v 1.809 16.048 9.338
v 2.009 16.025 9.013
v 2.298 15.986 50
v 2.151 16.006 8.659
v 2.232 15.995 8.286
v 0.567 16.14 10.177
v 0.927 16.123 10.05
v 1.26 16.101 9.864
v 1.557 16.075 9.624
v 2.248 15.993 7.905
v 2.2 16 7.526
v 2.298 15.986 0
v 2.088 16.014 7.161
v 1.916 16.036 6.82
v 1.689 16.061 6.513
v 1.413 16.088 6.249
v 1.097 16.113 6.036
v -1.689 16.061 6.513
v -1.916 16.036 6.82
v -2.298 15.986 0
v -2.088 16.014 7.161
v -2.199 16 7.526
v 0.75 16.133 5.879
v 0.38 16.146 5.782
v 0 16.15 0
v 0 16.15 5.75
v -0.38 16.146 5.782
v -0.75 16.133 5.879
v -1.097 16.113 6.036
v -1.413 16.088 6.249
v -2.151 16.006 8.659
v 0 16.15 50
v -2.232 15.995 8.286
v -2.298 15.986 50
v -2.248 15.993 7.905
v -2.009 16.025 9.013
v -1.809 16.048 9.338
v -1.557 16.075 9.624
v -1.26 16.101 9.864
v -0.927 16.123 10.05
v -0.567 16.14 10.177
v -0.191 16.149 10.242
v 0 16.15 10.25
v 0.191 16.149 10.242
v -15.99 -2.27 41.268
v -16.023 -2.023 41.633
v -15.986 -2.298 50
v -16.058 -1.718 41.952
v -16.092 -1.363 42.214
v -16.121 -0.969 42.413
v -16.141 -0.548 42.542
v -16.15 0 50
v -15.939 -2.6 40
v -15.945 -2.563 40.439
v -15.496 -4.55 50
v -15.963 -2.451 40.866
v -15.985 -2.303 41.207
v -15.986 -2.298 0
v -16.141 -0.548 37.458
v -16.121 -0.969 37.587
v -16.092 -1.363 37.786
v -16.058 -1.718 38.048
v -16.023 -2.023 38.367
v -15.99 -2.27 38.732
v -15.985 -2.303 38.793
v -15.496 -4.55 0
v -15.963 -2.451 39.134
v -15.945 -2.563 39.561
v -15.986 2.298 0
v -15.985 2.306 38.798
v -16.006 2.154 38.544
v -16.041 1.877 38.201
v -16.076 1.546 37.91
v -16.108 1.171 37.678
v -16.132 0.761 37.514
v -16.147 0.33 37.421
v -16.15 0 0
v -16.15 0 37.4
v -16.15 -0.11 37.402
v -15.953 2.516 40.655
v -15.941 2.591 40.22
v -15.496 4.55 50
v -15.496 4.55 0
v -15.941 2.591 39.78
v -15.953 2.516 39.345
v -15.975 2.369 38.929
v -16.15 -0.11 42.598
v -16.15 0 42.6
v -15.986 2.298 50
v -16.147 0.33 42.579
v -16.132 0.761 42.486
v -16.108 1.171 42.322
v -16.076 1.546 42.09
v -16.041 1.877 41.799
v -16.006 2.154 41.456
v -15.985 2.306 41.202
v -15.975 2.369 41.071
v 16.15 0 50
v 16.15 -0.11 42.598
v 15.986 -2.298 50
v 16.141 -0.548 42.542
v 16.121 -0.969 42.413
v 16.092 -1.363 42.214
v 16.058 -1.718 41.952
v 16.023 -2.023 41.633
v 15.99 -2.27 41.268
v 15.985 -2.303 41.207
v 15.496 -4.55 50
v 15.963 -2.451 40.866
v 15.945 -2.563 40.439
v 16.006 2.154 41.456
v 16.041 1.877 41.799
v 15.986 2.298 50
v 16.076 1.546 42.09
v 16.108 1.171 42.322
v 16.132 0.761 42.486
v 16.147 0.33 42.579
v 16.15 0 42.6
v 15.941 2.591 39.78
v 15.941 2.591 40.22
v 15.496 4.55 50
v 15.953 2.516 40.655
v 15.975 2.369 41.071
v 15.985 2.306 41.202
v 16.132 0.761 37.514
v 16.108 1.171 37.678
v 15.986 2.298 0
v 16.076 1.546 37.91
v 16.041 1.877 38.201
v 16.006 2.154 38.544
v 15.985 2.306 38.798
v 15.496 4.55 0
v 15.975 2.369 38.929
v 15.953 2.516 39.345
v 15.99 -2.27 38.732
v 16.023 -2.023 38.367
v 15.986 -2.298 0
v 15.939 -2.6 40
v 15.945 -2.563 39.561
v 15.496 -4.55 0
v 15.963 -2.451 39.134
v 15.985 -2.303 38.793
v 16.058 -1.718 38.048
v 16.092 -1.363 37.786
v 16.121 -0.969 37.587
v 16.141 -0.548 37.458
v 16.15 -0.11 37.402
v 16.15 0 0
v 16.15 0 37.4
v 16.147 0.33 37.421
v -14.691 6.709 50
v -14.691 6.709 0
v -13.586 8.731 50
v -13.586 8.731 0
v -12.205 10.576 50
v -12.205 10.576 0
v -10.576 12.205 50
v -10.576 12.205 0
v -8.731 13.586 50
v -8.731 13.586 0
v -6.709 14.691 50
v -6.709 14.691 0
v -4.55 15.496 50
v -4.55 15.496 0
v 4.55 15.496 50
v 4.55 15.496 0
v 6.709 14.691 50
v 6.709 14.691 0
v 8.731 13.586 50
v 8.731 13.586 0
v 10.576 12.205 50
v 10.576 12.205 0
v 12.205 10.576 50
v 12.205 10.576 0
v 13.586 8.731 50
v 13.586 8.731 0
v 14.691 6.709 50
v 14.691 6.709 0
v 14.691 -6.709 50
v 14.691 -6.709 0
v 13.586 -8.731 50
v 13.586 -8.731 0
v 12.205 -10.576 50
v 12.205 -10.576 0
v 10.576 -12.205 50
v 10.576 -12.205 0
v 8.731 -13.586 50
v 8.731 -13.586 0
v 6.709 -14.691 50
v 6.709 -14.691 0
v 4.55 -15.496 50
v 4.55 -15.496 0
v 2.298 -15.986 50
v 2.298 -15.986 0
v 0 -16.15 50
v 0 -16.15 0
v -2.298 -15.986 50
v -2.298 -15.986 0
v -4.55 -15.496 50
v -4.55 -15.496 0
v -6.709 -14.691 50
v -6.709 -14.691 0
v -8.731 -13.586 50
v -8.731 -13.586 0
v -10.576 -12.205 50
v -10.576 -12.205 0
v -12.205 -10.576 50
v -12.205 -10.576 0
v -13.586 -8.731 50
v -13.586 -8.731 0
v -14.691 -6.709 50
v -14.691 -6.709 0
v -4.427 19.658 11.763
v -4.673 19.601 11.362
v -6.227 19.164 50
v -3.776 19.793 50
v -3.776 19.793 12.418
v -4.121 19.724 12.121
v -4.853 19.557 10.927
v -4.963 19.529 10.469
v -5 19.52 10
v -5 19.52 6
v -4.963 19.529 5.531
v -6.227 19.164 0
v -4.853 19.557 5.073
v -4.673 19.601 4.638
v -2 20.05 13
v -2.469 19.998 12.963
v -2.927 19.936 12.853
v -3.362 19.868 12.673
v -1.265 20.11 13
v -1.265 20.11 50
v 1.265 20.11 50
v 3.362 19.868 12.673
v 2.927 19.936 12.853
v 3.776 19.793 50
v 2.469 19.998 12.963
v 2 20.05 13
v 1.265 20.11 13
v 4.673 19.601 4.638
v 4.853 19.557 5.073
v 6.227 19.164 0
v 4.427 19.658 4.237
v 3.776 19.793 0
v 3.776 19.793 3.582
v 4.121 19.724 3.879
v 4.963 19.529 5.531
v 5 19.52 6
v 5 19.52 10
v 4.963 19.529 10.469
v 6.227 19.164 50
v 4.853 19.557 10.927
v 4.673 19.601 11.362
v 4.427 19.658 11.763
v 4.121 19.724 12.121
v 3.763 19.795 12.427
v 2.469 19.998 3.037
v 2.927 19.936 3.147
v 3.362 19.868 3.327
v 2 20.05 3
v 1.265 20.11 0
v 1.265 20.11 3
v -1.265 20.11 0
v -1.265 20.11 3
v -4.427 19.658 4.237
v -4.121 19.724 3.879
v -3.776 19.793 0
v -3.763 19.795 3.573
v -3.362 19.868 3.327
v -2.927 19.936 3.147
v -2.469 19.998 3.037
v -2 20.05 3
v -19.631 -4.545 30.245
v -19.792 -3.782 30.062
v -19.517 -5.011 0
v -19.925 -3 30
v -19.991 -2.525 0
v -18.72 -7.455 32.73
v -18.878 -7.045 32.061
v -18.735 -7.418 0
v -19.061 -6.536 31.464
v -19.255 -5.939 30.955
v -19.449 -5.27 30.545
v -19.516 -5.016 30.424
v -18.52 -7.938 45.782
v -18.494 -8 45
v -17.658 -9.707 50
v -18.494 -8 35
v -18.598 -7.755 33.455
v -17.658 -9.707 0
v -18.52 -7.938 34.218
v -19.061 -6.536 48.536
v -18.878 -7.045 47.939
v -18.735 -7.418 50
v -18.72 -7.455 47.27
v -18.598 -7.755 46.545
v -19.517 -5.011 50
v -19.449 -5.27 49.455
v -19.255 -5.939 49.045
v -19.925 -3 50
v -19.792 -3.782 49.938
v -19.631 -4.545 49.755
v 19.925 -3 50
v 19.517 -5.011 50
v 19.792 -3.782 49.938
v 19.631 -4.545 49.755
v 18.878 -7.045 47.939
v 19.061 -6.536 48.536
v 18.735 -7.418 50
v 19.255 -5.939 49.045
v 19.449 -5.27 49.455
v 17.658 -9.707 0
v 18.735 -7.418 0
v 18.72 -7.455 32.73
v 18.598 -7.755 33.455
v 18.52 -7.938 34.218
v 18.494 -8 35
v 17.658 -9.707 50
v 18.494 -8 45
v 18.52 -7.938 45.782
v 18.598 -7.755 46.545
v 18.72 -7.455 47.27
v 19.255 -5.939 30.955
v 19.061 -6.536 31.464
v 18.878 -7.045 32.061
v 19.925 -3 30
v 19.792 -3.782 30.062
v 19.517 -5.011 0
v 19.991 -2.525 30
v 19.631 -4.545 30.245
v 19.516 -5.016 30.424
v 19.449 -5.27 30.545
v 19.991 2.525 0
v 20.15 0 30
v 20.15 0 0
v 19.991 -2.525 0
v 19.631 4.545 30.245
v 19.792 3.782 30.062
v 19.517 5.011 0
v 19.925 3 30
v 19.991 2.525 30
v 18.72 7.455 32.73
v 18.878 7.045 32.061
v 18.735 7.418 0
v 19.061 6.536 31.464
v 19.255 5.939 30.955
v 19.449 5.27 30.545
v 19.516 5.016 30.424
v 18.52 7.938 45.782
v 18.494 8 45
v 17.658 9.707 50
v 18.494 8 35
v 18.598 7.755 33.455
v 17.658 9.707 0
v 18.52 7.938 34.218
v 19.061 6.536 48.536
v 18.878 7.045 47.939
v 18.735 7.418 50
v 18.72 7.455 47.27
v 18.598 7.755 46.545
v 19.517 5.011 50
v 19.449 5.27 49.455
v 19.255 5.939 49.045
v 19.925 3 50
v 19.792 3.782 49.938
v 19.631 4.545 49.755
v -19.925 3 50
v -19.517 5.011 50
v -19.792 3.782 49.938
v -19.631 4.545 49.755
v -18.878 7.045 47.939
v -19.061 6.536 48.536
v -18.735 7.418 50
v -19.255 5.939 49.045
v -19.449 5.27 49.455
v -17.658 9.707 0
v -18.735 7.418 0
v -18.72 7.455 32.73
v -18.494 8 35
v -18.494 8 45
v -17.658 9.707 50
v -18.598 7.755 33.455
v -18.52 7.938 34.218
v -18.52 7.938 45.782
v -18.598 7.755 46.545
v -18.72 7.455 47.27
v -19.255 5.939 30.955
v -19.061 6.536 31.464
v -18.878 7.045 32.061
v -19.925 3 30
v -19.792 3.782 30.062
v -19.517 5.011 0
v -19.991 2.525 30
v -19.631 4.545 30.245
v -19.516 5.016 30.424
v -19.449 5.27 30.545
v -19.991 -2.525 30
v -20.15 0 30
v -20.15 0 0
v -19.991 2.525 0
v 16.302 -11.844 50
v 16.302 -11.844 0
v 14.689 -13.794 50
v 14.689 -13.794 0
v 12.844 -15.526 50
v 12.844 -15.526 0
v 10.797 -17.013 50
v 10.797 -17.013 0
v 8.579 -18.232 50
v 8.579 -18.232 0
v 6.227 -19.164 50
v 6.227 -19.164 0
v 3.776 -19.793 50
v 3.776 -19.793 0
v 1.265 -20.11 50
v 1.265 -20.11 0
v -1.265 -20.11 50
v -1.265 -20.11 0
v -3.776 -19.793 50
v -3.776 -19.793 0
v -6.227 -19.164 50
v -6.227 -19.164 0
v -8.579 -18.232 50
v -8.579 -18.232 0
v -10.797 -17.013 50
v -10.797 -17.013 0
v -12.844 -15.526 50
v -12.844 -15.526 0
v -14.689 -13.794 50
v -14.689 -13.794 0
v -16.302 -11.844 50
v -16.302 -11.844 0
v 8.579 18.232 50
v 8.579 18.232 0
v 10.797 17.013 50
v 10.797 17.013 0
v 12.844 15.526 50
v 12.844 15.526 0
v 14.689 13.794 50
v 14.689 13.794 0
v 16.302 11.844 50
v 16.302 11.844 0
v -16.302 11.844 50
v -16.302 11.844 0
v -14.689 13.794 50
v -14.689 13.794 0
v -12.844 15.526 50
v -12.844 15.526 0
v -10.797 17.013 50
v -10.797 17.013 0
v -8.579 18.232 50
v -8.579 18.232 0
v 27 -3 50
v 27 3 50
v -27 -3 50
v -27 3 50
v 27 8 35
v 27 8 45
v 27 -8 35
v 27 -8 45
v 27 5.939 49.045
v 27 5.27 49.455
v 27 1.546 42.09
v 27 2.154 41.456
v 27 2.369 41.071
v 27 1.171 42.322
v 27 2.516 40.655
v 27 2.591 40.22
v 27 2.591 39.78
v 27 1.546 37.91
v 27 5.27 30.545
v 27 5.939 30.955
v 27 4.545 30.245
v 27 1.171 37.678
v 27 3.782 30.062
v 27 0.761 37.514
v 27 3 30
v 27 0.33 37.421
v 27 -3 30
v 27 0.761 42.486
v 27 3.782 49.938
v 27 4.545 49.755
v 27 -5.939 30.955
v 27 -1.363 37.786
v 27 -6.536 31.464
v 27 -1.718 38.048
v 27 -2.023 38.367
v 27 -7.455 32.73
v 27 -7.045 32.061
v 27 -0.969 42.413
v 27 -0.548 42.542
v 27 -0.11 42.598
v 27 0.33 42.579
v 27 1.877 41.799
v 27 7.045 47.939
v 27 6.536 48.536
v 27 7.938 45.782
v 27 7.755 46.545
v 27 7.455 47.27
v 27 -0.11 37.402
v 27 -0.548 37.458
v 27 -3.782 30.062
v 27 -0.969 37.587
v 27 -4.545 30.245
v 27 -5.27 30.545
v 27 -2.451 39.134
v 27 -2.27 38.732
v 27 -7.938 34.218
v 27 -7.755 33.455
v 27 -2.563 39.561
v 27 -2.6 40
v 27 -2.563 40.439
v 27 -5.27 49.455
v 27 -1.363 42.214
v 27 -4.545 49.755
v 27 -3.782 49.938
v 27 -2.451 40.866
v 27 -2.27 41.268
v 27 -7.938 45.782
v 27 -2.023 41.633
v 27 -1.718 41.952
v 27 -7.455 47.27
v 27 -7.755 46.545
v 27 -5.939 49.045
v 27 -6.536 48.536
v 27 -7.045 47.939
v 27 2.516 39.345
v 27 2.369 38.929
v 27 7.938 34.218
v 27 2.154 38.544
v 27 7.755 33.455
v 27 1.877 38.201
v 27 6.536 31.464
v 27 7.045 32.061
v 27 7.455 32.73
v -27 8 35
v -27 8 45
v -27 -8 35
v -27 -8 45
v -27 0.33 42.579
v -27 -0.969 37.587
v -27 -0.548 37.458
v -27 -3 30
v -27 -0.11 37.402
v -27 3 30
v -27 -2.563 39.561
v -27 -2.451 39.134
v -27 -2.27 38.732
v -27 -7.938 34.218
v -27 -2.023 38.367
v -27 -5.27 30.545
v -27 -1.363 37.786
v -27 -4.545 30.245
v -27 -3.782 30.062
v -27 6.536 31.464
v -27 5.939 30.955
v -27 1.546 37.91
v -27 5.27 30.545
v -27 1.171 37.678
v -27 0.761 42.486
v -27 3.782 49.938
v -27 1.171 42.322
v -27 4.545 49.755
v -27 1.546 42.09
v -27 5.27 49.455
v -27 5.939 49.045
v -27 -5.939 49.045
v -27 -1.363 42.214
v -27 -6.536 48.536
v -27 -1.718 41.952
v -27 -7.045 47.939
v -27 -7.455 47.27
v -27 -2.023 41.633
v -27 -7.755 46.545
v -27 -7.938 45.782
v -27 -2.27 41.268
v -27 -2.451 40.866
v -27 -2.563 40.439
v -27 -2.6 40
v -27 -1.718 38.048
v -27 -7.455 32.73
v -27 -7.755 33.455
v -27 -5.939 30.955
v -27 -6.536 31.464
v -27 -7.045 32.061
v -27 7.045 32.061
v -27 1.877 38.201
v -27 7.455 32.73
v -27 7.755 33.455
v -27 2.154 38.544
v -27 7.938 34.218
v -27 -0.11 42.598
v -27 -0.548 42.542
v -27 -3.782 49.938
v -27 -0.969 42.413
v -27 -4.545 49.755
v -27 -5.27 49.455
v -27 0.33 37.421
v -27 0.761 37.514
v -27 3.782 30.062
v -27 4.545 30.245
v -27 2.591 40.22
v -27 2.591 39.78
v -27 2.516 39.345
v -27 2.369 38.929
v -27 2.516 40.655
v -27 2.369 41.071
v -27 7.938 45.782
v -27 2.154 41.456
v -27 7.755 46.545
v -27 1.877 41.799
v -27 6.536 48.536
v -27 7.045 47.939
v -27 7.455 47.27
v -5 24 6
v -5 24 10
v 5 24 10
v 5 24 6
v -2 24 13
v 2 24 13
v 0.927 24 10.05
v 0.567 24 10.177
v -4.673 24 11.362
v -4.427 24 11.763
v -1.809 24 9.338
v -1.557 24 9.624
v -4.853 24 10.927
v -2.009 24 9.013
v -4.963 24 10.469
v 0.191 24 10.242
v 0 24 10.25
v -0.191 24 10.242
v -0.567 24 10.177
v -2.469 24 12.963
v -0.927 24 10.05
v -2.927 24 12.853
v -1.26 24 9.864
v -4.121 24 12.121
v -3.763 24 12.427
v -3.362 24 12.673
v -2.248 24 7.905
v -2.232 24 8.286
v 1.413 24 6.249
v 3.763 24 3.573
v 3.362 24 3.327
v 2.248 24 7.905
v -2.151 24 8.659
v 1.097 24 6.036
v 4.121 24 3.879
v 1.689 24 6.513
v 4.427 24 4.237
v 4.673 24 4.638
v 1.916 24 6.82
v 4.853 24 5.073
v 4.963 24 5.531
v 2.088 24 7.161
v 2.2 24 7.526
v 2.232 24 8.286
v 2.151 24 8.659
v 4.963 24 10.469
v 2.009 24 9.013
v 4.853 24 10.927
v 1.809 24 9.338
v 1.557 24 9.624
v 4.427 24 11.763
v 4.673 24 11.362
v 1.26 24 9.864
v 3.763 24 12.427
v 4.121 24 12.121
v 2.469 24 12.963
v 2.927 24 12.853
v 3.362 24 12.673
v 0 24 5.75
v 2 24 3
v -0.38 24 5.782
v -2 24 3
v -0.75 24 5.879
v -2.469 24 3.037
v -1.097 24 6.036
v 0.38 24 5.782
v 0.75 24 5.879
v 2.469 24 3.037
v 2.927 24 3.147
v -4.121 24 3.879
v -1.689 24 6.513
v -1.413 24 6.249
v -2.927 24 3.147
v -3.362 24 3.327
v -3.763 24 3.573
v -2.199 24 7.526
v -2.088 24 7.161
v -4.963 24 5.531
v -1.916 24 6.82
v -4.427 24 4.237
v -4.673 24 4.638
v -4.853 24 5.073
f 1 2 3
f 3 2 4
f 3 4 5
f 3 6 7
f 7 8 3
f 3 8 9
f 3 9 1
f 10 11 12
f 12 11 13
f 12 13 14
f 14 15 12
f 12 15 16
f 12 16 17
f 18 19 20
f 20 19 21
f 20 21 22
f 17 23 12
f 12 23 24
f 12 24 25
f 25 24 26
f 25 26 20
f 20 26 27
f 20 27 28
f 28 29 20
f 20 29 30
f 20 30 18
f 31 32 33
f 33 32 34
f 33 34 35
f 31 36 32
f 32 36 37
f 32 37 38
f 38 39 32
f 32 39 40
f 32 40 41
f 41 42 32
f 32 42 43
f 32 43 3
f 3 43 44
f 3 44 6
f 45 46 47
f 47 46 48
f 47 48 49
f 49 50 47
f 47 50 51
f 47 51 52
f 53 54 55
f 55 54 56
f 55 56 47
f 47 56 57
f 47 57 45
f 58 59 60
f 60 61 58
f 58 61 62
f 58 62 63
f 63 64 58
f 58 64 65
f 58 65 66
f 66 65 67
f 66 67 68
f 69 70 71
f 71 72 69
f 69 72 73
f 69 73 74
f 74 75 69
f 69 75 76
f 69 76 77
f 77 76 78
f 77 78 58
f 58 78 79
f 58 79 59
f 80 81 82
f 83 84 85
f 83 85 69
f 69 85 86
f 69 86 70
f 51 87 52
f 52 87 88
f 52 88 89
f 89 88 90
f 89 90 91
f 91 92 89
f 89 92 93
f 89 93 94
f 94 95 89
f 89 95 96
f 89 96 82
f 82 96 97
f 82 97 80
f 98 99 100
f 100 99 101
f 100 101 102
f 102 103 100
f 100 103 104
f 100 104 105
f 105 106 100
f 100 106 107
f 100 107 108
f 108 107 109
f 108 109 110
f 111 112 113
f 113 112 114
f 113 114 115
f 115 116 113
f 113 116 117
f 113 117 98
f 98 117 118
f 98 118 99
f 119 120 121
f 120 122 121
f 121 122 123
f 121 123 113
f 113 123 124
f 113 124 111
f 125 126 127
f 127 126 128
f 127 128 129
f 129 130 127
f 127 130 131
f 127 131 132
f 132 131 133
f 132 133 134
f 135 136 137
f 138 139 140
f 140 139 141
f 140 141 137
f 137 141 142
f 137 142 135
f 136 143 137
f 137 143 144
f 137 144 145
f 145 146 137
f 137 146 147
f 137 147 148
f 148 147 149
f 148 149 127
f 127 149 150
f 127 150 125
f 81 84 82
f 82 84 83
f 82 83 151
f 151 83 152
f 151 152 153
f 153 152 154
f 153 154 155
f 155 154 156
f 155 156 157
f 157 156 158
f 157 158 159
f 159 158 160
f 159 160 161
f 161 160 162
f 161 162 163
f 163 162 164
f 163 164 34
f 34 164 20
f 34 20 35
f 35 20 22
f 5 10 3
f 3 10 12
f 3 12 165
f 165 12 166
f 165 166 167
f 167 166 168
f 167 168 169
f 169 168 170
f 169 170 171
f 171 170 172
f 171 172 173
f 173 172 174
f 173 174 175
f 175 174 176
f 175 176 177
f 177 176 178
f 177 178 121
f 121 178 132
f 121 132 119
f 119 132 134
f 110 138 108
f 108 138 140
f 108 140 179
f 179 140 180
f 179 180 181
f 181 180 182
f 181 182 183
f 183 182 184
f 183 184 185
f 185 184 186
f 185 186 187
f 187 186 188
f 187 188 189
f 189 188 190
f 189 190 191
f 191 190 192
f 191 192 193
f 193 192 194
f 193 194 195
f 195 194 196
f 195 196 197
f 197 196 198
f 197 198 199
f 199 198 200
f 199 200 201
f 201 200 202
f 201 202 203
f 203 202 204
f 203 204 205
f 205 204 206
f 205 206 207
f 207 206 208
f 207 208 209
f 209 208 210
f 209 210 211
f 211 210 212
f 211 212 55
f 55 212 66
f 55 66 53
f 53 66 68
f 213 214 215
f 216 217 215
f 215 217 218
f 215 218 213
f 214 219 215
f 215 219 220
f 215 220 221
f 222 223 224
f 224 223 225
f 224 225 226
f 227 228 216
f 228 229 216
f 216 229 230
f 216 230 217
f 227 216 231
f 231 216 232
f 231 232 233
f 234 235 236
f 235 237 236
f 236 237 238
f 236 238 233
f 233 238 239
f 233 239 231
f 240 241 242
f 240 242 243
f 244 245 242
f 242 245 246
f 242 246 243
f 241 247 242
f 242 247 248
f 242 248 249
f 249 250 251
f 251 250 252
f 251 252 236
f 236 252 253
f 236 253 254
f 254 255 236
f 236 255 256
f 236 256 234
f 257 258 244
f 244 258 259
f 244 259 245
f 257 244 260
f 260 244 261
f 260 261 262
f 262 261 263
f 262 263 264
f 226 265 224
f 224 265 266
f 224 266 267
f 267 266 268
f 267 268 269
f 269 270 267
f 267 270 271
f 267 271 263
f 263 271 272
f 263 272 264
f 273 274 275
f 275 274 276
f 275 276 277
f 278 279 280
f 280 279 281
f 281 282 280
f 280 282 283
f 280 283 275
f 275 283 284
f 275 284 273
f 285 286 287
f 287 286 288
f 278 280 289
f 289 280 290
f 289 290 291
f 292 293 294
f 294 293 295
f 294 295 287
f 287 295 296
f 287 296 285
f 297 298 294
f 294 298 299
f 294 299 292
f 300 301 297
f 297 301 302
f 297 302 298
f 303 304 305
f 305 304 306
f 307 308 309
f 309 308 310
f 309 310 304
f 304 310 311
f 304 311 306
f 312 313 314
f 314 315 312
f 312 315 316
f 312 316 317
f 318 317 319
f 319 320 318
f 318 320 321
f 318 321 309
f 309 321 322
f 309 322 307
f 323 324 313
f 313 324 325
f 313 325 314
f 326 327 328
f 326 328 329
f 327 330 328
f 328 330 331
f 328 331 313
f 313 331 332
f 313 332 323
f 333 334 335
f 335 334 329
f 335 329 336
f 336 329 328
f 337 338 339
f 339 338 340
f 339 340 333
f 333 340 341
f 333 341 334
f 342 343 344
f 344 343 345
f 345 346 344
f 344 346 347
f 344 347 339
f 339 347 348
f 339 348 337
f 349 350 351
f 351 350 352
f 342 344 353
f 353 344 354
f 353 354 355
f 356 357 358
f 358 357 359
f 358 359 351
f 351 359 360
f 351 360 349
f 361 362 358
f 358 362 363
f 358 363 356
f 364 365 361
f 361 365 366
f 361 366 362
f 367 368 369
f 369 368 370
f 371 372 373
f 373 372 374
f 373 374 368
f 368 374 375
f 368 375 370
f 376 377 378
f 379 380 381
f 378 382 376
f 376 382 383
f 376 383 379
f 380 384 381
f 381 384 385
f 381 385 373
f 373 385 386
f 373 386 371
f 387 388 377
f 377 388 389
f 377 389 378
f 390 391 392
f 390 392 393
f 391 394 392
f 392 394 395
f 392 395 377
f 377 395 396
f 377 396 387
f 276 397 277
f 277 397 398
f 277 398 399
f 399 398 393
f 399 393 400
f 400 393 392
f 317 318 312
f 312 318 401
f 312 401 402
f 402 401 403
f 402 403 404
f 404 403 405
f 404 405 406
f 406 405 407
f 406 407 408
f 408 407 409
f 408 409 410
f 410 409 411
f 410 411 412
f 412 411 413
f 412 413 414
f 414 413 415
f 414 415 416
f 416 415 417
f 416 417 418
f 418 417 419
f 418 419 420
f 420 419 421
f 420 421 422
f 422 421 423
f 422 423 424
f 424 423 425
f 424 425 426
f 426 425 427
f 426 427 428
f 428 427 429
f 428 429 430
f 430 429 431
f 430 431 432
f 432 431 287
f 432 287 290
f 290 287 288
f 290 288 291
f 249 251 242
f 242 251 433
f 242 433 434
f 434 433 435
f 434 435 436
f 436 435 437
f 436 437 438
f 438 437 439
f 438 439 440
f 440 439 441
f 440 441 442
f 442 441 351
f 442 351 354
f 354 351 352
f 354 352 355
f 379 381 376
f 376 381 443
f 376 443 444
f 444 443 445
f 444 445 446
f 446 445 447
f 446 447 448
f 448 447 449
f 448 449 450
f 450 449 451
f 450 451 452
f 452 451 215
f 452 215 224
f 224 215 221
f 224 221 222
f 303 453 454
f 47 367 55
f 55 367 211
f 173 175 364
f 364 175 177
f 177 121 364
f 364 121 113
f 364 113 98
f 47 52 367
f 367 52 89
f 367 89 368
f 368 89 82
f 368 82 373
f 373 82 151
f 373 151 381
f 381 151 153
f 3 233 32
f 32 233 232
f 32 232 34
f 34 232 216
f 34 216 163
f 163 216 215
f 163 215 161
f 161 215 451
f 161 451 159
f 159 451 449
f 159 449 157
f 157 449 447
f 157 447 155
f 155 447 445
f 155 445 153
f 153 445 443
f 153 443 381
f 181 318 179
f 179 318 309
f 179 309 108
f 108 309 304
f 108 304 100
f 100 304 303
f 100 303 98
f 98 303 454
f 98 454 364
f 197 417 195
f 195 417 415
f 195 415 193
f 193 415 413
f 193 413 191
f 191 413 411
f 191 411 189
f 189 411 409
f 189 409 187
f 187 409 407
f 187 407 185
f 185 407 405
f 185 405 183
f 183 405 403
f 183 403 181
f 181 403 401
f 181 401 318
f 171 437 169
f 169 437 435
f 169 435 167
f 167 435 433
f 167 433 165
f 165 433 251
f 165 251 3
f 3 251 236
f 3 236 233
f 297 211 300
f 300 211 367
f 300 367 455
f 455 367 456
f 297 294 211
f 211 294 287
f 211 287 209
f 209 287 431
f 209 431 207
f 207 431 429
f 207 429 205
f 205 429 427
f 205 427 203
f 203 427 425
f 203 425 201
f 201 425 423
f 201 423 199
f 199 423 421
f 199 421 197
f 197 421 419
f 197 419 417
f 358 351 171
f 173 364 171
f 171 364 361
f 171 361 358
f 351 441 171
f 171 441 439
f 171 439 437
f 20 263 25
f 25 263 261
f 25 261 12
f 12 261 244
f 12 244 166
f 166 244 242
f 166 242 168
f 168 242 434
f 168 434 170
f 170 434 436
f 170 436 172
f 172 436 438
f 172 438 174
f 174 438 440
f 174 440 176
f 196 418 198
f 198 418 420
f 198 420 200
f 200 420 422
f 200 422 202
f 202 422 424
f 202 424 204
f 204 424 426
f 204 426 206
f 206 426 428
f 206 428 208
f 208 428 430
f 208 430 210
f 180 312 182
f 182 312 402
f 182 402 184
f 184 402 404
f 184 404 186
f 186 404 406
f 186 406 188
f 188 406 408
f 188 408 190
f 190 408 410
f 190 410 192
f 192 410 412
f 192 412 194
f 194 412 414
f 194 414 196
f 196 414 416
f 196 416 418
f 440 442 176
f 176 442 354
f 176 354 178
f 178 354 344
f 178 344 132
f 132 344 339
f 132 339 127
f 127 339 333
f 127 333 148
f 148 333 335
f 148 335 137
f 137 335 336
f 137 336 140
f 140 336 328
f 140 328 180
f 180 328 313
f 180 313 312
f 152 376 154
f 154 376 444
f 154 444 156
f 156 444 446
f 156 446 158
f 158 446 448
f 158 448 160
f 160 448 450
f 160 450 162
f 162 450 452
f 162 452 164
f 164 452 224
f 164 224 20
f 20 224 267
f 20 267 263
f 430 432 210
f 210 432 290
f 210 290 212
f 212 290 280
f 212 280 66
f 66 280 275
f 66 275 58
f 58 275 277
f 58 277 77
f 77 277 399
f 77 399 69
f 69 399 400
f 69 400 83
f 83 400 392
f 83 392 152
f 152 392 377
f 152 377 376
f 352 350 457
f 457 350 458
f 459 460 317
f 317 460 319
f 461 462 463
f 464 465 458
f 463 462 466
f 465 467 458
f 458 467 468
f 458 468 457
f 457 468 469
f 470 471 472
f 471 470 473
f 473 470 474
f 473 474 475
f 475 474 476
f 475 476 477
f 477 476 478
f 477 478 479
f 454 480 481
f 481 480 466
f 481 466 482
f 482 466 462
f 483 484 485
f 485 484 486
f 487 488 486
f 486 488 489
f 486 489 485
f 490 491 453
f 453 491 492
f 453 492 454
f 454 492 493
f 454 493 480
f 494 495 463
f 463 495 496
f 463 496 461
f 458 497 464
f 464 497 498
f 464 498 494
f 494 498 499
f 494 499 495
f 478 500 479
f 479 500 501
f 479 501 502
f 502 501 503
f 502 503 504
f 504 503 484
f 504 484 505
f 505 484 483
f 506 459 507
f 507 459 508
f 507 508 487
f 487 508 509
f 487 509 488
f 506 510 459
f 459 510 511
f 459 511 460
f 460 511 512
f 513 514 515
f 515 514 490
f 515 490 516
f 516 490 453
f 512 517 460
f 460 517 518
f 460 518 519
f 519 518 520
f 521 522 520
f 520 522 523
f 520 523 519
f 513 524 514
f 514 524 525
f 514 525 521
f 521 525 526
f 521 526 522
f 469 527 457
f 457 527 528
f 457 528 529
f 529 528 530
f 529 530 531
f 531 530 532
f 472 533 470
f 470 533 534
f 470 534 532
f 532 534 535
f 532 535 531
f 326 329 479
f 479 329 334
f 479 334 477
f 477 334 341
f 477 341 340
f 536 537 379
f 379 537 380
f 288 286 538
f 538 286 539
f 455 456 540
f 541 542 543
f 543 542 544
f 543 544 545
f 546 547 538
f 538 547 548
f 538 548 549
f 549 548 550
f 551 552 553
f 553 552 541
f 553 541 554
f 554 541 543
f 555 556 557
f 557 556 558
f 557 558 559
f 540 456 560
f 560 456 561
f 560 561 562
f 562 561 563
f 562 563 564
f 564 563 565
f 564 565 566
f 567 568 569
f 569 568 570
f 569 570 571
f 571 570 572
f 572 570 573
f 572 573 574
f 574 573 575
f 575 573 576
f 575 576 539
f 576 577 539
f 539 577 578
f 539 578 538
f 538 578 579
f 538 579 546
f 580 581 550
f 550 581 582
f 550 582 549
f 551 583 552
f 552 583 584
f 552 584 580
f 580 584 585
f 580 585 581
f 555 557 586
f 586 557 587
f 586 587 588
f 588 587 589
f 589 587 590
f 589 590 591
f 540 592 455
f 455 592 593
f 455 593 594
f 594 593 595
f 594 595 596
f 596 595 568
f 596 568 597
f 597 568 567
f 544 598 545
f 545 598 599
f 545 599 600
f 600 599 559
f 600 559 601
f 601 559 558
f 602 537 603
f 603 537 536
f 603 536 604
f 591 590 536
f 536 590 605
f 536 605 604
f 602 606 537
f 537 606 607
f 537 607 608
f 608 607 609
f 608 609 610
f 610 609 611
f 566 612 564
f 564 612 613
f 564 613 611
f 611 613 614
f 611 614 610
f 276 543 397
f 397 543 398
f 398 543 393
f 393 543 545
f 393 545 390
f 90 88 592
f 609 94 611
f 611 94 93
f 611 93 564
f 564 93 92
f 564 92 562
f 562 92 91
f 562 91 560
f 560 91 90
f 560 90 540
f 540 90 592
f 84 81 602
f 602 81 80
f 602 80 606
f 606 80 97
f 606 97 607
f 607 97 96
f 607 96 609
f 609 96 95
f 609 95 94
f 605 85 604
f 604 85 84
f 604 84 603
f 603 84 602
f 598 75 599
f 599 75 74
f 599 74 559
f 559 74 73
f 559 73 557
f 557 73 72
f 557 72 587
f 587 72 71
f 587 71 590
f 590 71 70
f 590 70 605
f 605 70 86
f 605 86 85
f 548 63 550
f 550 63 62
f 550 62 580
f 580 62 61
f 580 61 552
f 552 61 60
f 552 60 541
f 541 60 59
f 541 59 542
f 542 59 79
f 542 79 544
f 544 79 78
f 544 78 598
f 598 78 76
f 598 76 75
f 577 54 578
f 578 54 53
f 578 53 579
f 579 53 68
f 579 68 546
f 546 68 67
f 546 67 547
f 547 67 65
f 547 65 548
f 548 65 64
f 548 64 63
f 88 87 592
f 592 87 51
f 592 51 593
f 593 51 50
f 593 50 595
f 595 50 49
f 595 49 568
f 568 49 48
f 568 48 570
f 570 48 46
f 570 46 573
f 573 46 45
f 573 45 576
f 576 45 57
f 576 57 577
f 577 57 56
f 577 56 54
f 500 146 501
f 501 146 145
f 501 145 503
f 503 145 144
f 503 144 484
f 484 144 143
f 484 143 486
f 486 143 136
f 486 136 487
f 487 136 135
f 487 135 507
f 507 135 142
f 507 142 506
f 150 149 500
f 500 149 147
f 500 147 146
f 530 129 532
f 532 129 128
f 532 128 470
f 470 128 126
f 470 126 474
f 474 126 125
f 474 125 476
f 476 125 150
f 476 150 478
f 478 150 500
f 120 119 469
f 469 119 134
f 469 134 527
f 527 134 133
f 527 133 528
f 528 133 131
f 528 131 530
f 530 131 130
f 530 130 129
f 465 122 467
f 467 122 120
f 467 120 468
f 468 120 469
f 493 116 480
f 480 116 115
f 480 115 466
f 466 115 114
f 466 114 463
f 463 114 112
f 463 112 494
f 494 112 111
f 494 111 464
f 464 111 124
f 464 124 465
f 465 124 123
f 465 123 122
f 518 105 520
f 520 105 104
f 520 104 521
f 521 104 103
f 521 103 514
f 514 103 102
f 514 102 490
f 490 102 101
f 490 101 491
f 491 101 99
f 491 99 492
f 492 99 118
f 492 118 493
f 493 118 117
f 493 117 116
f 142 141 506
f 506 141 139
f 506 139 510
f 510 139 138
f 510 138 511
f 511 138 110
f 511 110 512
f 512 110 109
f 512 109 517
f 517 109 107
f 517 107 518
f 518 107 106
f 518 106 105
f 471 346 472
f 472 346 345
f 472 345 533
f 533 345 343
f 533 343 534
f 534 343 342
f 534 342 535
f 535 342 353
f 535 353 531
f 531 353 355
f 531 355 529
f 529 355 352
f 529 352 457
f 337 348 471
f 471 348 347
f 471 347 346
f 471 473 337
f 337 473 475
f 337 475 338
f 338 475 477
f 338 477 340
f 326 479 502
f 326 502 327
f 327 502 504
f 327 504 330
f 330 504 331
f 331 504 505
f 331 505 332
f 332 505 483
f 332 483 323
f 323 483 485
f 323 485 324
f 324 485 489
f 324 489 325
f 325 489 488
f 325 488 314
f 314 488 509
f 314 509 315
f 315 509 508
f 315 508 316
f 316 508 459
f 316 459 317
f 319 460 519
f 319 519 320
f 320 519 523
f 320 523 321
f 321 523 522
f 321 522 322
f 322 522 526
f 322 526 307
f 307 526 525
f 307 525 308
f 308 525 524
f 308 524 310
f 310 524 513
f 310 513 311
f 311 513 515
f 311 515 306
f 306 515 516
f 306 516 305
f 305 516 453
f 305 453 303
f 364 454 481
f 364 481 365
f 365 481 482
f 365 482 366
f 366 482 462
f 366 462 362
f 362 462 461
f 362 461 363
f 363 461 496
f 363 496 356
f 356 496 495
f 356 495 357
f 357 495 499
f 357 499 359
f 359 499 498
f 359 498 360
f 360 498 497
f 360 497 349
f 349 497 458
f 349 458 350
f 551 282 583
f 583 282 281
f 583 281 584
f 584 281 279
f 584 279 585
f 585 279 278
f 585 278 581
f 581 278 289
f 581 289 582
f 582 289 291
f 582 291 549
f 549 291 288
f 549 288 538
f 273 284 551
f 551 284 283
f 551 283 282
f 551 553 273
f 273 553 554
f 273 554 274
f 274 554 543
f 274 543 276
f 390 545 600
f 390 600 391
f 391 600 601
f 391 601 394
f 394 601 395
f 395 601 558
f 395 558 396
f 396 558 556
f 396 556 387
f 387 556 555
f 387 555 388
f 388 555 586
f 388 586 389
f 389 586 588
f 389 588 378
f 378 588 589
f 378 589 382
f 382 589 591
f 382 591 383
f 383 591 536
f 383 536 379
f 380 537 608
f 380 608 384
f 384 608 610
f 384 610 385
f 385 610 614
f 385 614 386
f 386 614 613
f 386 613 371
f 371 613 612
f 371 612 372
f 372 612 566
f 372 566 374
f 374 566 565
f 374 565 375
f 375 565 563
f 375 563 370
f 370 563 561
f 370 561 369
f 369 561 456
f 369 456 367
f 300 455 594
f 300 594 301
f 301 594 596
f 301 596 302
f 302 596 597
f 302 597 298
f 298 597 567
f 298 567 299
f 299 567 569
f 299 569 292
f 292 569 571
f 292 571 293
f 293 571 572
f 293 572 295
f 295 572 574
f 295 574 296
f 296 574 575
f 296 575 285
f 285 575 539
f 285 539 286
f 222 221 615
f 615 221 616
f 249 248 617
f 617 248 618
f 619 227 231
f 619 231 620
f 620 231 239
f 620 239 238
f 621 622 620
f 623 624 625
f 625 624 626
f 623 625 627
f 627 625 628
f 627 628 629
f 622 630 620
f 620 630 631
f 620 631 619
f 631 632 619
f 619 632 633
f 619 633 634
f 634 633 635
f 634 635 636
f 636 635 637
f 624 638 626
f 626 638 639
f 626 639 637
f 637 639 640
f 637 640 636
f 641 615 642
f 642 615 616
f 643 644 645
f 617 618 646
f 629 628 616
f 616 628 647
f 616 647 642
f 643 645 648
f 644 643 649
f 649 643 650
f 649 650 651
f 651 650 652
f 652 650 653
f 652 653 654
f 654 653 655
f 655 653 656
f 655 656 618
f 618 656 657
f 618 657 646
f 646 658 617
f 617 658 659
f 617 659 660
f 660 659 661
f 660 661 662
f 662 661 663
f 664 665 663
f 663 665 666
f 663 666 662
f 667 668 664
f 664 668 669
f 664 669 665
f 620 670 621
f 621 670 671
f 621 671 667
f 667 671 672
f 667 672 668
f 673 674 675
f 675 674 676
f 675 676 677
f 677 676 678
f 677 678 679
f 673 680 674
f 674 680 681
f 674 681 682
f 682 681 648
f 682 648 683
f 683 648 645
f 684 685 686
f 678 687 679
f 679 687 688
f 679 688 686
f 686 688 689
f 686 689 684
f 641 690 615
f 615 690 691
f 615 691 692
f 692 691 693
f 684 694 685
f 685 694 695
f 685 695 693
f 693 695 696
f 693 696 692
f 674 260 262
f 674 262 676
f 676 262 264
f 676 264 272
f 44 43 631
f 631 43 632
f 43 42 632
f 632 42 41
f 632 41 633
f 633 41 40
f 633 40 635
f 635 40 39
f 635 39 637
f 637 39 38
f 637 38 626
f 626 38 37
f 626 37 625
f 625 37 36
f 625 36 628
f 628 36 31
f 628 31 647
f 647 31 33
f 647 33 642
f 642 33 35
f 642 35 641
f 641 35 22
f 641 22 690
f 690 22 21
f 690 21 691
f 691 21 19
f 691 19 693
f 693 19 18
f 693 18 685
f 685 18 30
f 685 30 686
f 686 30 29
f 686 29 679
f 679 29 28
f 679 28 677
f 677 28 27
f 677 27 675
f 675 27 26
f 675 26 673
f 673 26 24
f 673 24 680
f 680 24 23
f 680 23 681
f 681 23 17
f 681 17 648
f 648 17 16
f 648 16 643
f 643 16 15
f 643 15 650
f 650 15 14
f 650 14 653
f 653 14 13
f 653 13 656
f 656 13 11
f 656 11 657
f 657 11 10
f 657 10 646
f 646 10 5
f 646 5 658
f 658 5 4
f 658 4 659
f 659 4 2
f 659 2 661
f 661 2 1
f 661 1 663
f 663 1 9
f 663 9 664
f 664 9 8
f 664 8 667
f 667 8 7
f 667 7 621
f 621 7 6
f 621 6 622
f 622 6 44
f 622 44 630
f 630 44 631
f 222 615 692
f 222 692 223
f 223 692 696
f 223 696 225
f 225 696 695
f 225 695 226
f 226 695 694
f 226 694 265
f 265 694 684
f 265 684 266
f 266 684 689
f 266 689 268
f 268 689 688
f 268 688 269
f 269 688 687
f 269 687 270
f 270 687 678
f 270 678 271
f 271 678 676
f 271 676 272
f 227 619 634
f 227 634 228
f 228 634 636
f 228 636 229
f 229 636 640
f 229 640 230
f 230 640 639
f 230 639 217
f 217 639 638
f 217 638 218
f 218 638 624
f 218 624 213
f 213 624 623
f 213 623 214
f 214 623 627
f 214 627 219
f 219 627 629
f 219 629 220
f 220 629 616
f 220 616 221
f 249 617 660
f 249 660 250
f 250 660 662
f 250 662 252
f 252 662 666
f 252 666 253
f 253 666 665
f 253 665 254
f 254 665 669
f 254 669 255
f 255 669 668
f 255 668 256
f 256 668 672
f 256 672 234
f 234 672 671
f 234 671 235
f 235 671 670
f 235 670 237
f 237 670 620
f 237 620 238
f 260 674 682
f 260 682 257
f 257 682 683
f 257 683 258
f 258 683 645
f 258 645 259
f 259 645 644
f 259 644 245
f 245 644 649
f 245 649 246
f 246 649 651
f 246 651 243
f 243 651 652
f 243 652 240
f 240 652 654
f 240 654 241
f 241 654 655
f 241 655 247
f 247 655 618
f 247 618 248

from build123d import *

# Parameters (mm, degrees)
ESQUISSE1_R                  = 20.15
ESQUISSE1_R_2                = 16.15
BOSS_EXTRU_1_DEPTH           = 50
ESQUISSE2_W                  = 10
ESQUISSE2_H                  = 16
BOSS_EXTRU_2_DEPTH           = 20
ENL_V_MAT_EXTRU_1_DEPTH      = 77.302178868
ENL_V_MAT_EXTRU_1_DEPTH_BACK = 77.302178868
ESQUISSE3_R                  = 2.6
CONG_1_R                     = 5
BOSS_EXTRU_3_DEPTH           = 5
BOSS_EXTRU_3_DEPTH_BACK      = 5
ESQUISSE5_W                  = 10
ESQUISSE5_H                  = 6
ESQUISSE4_R                  = 2.25
ENL_V_MAT_EXTRU_2_DEPTH      = 62.684682178
CONG_2_R                     = 3


with BuildPart() as part:
    # Esquisse1 → Boss.-Extru.1 (new body)
    with BuildSketch(Plane.XY):
        Circle(ESQUISSE1_R)
        Circle(ESQUISSE1_R_2, mode=Mode.SUBTRACT)
    extrude(amount=BOSS_EXTRU_1_DEPTH)

    # Esquisse2 → Boss.-Extru.2 (add)
    with BuildSketch(Plane.XY.offset(50)):
        with Locations((-22, 0)):
            Rectangle(ESQUISSE2_W, ESQUISSE2_H)
        with Locations((22, 0)):
            Rectangle(ESQUISSE2_W, ESQUISSE2_H)
    extrude(amount=-BOSS_EXTRU_2_DEPTH)

    # Esquisse3 → Enlèv. mat.-Extru.1 (cut, two sides: drawn at the far end of the back side and taken through both)
    with BuildSketch(Plane.ZY.offset(27).offset(-ENL_V_MAT_EXTRU_1_DEPTH_BACK)):
        with Locations(Location((40, 0, 0), (0, 0, 270))):
            Circle(ESQUISSE3_R)
    extrude(amount=ENL_V_MAT_EXTRU_1_DEPTH + ENL_V_MAT_EXTRU_1_DEPTH_BACK, mode=Mode.SUBTRACT)

    # Congé1
    cong_1_edges = [part.edges().sort_by_distance(p)[0] for p in [
        (22.746925165, 8, 30),
        (22.746925165, -8, 30),
        (22.746925165, 8, 50),
        (22.746925165, -8, 50),
        (-22.746925165, 8, 30),
        (-22.746925165, -8, 30),
        (-22.746925165, 8, 50),
        (-22.746925165, -8, 50),
    ]]
    fillet(cong_1_edges, radius=CONG_1_R)

    # Esquisse5 → Boss.-Extru.3 (add, two sides: drawn at the far end of the back side and taken through both)
    with BuildSketch(Plane(origin=(0, 0, 0), x_dir=(0, 0, -1), z_dir=(1, 0, 0)).offset(-BOSS_EXTRU_3_DEPTH_BACK)):
        with Locations((-8, 21)):
            Rectangle(ESQUISSE5_W, ESQUISSE5_H)
    extrude(amount=BOSS_EXTRU_3_DEPTH + BOSS_EXTRU_3_DEPTH_BACK)

    # Esquisse4 → Enlèv. mat.-Extru.2 (cut, through all)
    with BuildSketch(Plane(origin=(0, 0, 0), x_dir=(1, 0, 0), z_dir=(0, 1, 0))):
        with Locations(Location((0, -8, 0), (0, 0, 90))):
            Circle(ESQUISSE4_R)
    extrude(amount=ENL_V_MAT_EXTRU_2_DEPTH, mode=Mode.SUBTRACT)

    # Congé2
    cong_2_edges = [part.edges().sort_by_distance(p)[0] for p in [
        (5, 21.759898821, 3),
        (5, 21.759898821, 13),
        (-5, 21.759898821, 13),
        (-5, 21.759898821, 3),
    ]]
    fillet(cong_2_edges, radius=CONG_2_R)


solid = part.part
